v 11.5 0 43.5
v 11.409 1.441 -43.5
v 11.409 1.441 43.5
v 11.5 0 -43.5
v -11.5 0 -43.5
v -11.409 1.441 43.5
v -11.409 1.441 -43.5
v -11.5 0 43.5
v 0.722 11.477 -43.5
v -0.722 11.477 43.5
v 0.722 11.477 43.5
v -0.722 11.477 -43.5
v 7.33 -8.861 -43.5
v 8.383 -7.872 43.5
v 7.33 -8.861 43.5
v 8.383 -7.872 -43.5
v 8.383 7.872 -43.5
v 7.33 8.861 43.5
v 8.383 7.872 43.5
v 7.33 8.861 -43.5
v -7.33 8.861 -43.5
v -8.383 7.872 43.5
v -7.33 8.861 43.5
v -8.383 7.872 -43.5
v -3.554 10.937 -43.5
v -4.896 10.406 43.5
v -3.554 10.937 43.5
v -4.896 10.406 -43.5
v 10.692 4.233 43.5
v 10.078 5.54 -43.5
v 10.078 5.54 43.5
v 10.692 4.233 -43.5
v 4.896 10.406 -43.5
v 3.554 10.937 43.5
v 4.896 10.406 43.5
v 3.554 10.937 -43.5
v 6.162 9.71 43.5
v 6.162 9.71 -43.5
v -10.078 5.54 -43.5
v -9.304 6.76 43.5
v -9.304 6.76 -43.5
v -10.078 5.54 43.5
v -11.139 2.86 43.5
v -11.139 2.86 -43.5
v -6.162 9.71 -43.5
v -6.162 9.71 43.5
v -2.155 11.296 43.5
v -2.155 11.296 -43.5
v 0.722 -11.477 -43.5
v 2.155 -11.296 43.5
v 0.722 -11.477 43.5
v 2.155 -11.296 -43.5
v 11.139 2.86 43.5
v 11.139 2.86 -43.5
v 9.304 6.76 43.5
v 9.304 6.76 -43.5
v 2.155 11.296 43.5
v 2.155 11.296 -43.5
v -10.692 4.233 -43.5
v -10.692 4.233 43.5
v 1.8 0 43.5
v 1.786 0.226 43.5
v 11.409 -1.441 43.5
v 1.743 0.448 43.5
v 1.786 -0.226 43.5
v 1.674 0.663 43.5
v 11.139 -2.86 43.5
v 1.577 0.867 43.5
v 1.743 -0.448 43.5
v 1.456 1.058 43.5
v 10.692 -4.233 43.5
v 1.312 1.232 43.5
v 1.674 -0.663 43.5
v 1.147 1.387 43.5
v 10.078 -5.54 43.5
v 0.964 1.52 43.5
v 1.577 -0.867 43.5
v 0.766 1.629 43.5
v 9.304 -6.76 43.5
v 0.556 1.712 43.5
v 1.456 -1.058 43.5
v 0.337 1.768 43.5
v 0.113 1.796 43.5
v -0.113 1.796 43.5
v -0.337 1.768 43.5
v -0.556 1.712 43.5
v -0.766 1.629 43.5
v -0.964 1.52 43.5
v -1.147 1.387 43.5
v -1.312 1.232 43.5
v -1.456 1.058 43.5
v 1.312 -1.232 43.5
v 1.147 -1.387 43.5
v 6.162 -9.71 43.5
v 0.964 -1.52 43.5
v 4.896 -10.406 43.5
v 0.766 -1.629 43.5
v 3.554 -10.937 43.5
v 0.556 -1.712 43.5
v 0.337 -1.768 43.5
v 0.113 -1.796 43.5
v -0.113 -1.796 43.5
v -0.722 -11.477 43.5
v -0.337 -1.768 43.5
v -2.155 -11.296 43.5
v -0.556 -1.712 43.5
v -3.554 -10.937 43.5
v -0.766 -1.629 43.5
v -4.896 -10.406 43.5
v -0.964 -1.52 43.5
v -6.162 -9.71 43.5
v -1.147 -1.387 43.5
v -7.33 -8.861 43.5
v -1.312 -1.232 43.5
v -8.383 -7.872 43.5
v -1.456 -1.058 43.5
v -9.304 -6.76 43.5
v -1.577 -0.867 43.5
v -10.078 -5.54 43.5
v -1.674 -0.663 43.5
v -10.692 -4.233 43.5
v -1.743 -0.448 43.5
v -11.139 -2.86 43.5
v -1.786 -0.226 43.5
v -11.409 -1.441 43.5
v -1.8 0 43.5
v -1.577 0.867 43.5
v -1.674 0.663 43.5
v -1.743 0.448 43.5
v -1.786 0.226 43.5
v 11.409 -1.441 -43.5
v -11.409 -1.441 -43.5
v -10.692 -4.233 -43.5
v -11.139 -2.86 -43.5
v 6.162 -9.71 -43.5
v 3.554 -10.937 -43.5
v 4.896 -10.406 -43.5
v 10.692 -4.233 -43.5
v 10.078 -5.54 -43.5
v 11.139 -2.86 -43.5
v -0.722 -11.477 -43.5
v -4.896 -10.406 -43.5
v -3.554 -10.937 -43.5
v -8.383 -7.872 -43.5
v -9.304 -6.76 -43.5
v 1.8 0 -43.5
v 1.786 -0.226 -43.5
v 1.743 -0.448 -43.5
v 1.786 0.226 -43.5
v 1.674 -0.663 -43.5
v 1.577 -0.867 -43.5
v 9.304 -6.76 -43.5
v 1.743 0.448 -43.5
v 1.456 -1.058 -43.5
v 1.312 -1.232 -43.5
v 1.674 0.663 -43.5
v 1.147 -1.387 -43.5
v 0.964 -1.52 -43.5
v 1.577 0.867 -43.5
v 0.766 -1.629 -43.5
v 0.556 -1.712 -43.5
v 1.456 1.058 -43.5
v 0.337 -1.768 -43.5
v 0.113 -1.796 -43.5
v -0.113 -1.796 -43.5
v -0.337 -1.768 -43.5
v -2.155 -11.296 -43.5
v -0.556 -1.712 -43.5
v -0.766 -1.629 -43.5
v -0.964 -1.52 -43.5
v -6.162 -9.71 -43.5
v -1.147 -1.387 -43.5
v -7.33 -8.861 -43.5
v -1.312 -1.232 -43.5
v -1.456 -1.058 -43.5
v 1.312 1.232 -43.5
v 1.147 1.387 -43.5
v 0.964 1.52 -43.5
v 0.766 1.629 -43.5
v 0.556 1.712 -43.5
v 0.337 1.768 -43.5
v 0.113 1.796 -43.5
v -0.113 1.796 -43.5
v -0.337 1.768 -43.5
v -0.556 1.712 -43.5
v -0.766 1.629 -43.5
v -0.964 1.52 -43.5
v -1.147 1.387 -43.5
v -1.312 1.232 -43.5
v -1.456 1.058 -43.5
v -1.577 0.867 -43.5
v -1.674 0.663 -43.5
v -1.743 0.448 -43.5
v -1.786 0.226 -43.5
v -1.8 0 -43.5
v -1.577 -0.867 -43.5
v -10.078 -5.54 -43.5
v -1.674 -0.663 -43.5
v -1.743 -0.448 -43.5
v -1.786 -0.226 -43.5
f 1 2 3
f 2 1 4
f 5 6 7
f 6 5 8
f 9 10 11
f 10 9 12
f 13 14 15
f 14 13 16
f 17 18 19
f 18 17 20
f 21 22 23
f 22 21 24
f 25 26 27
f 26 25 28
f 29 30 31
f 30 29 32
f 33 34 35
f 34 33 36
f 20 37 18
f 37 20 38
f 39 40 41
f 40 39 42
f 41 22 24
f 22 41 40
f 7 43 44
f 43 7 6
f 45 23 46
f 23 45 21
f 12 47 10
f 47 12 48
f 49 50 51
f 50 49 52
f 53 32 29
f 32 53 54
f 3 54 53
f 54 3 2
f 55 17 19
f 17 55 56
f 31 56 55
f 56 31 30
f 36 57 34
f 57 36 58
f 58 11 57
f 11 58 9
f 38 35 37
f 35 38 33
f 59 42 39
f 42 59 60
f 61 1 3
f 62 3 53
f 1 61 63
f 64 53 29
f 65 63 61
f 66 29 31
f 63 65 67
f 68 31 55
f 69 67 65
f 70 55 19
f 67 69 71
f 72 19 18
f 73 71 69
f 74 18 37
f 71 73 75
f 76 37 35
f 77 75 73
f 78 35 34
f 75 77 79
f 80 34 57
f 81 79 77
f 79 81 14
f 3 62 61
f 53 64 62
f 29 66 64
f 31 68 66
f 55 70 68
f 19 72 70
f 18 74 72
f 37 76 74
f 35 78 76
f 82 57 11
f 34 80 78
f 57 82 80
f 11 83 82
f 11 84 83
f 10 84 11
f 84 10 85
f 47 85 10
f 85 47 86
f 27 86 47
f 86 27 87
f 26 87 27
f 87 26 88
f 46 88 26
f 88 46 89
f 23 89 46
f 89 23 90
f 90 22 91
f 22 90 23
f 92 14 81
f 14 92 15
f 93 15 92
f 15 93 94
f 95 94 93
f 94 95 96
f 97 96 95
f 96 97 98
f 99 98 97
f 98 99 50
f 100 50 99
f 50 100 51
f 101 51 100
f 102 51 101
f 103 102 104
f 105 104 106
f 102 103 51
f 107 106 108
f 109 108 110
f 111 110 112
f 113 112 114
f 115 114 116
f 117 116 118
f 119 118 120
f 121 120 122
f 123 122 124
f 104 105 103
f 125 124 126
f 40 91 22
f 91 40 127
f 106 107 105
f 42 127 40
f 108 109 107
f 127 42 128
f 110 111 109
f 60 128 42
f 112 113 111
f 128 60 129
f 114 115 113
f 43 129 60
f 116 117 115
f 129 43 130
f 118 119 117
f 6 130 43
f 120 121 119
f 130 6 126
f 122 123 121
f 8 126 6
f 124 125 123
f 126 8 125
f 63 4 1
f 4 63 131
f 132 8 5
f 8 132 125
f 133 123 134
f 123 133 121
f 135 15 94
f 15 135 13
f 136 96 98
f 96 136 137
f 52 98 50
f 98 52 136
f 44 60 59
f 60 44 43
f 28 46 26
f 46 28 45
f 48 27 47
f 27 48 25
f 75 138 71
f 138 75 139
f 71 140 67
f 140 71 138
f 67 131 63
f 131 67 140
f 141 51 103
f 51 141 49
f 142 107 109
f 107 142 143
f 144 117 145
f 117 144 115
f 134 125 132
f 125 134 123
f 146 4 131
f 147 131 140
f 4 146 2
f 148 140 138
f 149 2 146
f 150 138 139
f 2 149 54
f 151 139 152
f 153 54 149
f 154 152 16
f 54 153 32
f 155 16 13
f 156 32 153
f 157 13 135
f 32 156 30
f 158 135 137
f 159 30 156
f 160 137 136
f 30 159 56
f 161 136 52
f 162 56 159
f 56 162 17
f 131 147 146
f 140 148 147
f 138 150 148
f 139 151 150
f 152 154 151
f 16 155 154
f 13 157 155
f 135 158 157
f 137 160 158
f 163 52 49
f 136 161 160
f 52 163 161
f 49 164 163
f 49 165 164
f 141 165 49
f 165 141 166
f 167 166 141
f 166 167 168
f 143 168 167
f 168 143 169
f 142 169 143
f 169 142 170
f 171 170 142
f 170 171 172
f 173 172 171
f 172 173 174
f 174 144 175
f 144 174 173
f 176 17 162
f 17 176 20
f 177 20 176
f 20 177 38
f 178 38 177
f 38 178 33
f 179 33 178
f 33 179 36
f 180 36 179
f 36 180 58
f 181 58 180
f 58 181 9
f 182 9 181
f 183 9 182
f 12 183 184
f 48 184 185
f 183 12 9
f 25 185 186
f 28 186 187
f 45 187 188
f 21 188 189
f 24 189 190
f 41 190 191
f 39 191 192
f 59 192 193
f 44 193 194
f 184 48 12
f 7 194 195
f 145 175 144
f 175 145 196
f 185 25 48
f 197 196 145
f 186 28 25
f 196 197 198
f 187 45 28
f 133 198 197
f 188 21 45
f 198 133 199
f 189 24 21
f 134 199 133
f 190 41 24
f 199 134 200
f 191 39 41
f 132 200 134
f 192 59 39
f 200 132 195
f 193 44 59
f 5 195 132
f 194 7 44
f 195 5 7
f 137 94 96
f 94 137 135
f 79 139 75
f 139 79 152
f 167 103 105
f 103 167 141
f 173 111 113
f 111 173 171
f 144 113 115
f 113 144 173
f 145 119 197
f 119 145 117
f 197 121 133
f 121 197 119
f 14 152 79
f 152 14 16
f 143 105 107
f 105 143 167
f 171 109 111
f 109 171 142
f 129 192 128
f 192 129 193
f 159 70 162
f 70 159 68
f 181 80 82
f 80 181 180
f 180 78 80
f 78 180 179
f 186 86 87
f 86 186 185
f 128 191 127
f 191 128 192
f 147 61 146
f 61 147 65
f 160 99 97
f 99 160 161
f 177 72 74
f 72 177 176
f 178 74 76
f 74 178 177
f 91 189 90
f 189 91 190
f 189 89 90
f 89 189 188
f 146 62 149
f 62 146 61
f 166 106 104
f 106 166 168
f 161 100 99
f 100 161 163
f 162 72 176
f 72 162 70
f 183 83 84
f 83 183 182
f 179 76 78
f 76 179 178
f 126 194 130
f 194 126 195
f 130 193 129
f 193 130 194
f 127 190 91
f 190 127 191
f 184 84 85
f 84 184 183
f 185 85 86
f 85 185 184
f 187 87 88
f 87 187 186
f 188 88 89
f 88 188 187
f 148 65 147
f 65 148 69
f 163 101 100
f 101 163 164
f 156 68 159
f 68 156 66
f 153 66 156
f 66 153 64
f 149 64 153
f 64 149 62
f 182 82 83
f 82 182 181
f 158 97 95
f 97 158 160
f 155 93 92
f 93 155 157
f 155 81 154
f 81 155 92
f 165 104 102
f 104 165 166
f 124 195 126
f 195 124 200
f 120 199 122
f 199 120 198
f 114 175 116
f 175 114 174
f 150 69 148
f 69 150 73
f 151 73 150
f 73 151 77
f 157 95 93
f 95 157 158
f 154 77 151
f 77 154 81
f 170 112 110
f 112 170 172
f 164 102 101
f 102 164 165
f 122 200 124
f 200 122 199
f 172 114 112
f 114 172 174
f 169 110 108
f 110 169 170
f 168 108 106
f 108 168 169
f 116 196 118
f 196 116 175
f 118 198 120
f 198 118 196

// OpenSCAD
$fn = 50;


difference() {
	union() {
		translate(v = [0, 0, -43.5000000000]) {
			cylinder(h = 87, r = 11.5000000000);
		}
	}
	union() {
		translate(v = [0, 0, -100.0000000000]) {
			cylinder(h = 200, r = 1.8000000000);
		}
	}
}
